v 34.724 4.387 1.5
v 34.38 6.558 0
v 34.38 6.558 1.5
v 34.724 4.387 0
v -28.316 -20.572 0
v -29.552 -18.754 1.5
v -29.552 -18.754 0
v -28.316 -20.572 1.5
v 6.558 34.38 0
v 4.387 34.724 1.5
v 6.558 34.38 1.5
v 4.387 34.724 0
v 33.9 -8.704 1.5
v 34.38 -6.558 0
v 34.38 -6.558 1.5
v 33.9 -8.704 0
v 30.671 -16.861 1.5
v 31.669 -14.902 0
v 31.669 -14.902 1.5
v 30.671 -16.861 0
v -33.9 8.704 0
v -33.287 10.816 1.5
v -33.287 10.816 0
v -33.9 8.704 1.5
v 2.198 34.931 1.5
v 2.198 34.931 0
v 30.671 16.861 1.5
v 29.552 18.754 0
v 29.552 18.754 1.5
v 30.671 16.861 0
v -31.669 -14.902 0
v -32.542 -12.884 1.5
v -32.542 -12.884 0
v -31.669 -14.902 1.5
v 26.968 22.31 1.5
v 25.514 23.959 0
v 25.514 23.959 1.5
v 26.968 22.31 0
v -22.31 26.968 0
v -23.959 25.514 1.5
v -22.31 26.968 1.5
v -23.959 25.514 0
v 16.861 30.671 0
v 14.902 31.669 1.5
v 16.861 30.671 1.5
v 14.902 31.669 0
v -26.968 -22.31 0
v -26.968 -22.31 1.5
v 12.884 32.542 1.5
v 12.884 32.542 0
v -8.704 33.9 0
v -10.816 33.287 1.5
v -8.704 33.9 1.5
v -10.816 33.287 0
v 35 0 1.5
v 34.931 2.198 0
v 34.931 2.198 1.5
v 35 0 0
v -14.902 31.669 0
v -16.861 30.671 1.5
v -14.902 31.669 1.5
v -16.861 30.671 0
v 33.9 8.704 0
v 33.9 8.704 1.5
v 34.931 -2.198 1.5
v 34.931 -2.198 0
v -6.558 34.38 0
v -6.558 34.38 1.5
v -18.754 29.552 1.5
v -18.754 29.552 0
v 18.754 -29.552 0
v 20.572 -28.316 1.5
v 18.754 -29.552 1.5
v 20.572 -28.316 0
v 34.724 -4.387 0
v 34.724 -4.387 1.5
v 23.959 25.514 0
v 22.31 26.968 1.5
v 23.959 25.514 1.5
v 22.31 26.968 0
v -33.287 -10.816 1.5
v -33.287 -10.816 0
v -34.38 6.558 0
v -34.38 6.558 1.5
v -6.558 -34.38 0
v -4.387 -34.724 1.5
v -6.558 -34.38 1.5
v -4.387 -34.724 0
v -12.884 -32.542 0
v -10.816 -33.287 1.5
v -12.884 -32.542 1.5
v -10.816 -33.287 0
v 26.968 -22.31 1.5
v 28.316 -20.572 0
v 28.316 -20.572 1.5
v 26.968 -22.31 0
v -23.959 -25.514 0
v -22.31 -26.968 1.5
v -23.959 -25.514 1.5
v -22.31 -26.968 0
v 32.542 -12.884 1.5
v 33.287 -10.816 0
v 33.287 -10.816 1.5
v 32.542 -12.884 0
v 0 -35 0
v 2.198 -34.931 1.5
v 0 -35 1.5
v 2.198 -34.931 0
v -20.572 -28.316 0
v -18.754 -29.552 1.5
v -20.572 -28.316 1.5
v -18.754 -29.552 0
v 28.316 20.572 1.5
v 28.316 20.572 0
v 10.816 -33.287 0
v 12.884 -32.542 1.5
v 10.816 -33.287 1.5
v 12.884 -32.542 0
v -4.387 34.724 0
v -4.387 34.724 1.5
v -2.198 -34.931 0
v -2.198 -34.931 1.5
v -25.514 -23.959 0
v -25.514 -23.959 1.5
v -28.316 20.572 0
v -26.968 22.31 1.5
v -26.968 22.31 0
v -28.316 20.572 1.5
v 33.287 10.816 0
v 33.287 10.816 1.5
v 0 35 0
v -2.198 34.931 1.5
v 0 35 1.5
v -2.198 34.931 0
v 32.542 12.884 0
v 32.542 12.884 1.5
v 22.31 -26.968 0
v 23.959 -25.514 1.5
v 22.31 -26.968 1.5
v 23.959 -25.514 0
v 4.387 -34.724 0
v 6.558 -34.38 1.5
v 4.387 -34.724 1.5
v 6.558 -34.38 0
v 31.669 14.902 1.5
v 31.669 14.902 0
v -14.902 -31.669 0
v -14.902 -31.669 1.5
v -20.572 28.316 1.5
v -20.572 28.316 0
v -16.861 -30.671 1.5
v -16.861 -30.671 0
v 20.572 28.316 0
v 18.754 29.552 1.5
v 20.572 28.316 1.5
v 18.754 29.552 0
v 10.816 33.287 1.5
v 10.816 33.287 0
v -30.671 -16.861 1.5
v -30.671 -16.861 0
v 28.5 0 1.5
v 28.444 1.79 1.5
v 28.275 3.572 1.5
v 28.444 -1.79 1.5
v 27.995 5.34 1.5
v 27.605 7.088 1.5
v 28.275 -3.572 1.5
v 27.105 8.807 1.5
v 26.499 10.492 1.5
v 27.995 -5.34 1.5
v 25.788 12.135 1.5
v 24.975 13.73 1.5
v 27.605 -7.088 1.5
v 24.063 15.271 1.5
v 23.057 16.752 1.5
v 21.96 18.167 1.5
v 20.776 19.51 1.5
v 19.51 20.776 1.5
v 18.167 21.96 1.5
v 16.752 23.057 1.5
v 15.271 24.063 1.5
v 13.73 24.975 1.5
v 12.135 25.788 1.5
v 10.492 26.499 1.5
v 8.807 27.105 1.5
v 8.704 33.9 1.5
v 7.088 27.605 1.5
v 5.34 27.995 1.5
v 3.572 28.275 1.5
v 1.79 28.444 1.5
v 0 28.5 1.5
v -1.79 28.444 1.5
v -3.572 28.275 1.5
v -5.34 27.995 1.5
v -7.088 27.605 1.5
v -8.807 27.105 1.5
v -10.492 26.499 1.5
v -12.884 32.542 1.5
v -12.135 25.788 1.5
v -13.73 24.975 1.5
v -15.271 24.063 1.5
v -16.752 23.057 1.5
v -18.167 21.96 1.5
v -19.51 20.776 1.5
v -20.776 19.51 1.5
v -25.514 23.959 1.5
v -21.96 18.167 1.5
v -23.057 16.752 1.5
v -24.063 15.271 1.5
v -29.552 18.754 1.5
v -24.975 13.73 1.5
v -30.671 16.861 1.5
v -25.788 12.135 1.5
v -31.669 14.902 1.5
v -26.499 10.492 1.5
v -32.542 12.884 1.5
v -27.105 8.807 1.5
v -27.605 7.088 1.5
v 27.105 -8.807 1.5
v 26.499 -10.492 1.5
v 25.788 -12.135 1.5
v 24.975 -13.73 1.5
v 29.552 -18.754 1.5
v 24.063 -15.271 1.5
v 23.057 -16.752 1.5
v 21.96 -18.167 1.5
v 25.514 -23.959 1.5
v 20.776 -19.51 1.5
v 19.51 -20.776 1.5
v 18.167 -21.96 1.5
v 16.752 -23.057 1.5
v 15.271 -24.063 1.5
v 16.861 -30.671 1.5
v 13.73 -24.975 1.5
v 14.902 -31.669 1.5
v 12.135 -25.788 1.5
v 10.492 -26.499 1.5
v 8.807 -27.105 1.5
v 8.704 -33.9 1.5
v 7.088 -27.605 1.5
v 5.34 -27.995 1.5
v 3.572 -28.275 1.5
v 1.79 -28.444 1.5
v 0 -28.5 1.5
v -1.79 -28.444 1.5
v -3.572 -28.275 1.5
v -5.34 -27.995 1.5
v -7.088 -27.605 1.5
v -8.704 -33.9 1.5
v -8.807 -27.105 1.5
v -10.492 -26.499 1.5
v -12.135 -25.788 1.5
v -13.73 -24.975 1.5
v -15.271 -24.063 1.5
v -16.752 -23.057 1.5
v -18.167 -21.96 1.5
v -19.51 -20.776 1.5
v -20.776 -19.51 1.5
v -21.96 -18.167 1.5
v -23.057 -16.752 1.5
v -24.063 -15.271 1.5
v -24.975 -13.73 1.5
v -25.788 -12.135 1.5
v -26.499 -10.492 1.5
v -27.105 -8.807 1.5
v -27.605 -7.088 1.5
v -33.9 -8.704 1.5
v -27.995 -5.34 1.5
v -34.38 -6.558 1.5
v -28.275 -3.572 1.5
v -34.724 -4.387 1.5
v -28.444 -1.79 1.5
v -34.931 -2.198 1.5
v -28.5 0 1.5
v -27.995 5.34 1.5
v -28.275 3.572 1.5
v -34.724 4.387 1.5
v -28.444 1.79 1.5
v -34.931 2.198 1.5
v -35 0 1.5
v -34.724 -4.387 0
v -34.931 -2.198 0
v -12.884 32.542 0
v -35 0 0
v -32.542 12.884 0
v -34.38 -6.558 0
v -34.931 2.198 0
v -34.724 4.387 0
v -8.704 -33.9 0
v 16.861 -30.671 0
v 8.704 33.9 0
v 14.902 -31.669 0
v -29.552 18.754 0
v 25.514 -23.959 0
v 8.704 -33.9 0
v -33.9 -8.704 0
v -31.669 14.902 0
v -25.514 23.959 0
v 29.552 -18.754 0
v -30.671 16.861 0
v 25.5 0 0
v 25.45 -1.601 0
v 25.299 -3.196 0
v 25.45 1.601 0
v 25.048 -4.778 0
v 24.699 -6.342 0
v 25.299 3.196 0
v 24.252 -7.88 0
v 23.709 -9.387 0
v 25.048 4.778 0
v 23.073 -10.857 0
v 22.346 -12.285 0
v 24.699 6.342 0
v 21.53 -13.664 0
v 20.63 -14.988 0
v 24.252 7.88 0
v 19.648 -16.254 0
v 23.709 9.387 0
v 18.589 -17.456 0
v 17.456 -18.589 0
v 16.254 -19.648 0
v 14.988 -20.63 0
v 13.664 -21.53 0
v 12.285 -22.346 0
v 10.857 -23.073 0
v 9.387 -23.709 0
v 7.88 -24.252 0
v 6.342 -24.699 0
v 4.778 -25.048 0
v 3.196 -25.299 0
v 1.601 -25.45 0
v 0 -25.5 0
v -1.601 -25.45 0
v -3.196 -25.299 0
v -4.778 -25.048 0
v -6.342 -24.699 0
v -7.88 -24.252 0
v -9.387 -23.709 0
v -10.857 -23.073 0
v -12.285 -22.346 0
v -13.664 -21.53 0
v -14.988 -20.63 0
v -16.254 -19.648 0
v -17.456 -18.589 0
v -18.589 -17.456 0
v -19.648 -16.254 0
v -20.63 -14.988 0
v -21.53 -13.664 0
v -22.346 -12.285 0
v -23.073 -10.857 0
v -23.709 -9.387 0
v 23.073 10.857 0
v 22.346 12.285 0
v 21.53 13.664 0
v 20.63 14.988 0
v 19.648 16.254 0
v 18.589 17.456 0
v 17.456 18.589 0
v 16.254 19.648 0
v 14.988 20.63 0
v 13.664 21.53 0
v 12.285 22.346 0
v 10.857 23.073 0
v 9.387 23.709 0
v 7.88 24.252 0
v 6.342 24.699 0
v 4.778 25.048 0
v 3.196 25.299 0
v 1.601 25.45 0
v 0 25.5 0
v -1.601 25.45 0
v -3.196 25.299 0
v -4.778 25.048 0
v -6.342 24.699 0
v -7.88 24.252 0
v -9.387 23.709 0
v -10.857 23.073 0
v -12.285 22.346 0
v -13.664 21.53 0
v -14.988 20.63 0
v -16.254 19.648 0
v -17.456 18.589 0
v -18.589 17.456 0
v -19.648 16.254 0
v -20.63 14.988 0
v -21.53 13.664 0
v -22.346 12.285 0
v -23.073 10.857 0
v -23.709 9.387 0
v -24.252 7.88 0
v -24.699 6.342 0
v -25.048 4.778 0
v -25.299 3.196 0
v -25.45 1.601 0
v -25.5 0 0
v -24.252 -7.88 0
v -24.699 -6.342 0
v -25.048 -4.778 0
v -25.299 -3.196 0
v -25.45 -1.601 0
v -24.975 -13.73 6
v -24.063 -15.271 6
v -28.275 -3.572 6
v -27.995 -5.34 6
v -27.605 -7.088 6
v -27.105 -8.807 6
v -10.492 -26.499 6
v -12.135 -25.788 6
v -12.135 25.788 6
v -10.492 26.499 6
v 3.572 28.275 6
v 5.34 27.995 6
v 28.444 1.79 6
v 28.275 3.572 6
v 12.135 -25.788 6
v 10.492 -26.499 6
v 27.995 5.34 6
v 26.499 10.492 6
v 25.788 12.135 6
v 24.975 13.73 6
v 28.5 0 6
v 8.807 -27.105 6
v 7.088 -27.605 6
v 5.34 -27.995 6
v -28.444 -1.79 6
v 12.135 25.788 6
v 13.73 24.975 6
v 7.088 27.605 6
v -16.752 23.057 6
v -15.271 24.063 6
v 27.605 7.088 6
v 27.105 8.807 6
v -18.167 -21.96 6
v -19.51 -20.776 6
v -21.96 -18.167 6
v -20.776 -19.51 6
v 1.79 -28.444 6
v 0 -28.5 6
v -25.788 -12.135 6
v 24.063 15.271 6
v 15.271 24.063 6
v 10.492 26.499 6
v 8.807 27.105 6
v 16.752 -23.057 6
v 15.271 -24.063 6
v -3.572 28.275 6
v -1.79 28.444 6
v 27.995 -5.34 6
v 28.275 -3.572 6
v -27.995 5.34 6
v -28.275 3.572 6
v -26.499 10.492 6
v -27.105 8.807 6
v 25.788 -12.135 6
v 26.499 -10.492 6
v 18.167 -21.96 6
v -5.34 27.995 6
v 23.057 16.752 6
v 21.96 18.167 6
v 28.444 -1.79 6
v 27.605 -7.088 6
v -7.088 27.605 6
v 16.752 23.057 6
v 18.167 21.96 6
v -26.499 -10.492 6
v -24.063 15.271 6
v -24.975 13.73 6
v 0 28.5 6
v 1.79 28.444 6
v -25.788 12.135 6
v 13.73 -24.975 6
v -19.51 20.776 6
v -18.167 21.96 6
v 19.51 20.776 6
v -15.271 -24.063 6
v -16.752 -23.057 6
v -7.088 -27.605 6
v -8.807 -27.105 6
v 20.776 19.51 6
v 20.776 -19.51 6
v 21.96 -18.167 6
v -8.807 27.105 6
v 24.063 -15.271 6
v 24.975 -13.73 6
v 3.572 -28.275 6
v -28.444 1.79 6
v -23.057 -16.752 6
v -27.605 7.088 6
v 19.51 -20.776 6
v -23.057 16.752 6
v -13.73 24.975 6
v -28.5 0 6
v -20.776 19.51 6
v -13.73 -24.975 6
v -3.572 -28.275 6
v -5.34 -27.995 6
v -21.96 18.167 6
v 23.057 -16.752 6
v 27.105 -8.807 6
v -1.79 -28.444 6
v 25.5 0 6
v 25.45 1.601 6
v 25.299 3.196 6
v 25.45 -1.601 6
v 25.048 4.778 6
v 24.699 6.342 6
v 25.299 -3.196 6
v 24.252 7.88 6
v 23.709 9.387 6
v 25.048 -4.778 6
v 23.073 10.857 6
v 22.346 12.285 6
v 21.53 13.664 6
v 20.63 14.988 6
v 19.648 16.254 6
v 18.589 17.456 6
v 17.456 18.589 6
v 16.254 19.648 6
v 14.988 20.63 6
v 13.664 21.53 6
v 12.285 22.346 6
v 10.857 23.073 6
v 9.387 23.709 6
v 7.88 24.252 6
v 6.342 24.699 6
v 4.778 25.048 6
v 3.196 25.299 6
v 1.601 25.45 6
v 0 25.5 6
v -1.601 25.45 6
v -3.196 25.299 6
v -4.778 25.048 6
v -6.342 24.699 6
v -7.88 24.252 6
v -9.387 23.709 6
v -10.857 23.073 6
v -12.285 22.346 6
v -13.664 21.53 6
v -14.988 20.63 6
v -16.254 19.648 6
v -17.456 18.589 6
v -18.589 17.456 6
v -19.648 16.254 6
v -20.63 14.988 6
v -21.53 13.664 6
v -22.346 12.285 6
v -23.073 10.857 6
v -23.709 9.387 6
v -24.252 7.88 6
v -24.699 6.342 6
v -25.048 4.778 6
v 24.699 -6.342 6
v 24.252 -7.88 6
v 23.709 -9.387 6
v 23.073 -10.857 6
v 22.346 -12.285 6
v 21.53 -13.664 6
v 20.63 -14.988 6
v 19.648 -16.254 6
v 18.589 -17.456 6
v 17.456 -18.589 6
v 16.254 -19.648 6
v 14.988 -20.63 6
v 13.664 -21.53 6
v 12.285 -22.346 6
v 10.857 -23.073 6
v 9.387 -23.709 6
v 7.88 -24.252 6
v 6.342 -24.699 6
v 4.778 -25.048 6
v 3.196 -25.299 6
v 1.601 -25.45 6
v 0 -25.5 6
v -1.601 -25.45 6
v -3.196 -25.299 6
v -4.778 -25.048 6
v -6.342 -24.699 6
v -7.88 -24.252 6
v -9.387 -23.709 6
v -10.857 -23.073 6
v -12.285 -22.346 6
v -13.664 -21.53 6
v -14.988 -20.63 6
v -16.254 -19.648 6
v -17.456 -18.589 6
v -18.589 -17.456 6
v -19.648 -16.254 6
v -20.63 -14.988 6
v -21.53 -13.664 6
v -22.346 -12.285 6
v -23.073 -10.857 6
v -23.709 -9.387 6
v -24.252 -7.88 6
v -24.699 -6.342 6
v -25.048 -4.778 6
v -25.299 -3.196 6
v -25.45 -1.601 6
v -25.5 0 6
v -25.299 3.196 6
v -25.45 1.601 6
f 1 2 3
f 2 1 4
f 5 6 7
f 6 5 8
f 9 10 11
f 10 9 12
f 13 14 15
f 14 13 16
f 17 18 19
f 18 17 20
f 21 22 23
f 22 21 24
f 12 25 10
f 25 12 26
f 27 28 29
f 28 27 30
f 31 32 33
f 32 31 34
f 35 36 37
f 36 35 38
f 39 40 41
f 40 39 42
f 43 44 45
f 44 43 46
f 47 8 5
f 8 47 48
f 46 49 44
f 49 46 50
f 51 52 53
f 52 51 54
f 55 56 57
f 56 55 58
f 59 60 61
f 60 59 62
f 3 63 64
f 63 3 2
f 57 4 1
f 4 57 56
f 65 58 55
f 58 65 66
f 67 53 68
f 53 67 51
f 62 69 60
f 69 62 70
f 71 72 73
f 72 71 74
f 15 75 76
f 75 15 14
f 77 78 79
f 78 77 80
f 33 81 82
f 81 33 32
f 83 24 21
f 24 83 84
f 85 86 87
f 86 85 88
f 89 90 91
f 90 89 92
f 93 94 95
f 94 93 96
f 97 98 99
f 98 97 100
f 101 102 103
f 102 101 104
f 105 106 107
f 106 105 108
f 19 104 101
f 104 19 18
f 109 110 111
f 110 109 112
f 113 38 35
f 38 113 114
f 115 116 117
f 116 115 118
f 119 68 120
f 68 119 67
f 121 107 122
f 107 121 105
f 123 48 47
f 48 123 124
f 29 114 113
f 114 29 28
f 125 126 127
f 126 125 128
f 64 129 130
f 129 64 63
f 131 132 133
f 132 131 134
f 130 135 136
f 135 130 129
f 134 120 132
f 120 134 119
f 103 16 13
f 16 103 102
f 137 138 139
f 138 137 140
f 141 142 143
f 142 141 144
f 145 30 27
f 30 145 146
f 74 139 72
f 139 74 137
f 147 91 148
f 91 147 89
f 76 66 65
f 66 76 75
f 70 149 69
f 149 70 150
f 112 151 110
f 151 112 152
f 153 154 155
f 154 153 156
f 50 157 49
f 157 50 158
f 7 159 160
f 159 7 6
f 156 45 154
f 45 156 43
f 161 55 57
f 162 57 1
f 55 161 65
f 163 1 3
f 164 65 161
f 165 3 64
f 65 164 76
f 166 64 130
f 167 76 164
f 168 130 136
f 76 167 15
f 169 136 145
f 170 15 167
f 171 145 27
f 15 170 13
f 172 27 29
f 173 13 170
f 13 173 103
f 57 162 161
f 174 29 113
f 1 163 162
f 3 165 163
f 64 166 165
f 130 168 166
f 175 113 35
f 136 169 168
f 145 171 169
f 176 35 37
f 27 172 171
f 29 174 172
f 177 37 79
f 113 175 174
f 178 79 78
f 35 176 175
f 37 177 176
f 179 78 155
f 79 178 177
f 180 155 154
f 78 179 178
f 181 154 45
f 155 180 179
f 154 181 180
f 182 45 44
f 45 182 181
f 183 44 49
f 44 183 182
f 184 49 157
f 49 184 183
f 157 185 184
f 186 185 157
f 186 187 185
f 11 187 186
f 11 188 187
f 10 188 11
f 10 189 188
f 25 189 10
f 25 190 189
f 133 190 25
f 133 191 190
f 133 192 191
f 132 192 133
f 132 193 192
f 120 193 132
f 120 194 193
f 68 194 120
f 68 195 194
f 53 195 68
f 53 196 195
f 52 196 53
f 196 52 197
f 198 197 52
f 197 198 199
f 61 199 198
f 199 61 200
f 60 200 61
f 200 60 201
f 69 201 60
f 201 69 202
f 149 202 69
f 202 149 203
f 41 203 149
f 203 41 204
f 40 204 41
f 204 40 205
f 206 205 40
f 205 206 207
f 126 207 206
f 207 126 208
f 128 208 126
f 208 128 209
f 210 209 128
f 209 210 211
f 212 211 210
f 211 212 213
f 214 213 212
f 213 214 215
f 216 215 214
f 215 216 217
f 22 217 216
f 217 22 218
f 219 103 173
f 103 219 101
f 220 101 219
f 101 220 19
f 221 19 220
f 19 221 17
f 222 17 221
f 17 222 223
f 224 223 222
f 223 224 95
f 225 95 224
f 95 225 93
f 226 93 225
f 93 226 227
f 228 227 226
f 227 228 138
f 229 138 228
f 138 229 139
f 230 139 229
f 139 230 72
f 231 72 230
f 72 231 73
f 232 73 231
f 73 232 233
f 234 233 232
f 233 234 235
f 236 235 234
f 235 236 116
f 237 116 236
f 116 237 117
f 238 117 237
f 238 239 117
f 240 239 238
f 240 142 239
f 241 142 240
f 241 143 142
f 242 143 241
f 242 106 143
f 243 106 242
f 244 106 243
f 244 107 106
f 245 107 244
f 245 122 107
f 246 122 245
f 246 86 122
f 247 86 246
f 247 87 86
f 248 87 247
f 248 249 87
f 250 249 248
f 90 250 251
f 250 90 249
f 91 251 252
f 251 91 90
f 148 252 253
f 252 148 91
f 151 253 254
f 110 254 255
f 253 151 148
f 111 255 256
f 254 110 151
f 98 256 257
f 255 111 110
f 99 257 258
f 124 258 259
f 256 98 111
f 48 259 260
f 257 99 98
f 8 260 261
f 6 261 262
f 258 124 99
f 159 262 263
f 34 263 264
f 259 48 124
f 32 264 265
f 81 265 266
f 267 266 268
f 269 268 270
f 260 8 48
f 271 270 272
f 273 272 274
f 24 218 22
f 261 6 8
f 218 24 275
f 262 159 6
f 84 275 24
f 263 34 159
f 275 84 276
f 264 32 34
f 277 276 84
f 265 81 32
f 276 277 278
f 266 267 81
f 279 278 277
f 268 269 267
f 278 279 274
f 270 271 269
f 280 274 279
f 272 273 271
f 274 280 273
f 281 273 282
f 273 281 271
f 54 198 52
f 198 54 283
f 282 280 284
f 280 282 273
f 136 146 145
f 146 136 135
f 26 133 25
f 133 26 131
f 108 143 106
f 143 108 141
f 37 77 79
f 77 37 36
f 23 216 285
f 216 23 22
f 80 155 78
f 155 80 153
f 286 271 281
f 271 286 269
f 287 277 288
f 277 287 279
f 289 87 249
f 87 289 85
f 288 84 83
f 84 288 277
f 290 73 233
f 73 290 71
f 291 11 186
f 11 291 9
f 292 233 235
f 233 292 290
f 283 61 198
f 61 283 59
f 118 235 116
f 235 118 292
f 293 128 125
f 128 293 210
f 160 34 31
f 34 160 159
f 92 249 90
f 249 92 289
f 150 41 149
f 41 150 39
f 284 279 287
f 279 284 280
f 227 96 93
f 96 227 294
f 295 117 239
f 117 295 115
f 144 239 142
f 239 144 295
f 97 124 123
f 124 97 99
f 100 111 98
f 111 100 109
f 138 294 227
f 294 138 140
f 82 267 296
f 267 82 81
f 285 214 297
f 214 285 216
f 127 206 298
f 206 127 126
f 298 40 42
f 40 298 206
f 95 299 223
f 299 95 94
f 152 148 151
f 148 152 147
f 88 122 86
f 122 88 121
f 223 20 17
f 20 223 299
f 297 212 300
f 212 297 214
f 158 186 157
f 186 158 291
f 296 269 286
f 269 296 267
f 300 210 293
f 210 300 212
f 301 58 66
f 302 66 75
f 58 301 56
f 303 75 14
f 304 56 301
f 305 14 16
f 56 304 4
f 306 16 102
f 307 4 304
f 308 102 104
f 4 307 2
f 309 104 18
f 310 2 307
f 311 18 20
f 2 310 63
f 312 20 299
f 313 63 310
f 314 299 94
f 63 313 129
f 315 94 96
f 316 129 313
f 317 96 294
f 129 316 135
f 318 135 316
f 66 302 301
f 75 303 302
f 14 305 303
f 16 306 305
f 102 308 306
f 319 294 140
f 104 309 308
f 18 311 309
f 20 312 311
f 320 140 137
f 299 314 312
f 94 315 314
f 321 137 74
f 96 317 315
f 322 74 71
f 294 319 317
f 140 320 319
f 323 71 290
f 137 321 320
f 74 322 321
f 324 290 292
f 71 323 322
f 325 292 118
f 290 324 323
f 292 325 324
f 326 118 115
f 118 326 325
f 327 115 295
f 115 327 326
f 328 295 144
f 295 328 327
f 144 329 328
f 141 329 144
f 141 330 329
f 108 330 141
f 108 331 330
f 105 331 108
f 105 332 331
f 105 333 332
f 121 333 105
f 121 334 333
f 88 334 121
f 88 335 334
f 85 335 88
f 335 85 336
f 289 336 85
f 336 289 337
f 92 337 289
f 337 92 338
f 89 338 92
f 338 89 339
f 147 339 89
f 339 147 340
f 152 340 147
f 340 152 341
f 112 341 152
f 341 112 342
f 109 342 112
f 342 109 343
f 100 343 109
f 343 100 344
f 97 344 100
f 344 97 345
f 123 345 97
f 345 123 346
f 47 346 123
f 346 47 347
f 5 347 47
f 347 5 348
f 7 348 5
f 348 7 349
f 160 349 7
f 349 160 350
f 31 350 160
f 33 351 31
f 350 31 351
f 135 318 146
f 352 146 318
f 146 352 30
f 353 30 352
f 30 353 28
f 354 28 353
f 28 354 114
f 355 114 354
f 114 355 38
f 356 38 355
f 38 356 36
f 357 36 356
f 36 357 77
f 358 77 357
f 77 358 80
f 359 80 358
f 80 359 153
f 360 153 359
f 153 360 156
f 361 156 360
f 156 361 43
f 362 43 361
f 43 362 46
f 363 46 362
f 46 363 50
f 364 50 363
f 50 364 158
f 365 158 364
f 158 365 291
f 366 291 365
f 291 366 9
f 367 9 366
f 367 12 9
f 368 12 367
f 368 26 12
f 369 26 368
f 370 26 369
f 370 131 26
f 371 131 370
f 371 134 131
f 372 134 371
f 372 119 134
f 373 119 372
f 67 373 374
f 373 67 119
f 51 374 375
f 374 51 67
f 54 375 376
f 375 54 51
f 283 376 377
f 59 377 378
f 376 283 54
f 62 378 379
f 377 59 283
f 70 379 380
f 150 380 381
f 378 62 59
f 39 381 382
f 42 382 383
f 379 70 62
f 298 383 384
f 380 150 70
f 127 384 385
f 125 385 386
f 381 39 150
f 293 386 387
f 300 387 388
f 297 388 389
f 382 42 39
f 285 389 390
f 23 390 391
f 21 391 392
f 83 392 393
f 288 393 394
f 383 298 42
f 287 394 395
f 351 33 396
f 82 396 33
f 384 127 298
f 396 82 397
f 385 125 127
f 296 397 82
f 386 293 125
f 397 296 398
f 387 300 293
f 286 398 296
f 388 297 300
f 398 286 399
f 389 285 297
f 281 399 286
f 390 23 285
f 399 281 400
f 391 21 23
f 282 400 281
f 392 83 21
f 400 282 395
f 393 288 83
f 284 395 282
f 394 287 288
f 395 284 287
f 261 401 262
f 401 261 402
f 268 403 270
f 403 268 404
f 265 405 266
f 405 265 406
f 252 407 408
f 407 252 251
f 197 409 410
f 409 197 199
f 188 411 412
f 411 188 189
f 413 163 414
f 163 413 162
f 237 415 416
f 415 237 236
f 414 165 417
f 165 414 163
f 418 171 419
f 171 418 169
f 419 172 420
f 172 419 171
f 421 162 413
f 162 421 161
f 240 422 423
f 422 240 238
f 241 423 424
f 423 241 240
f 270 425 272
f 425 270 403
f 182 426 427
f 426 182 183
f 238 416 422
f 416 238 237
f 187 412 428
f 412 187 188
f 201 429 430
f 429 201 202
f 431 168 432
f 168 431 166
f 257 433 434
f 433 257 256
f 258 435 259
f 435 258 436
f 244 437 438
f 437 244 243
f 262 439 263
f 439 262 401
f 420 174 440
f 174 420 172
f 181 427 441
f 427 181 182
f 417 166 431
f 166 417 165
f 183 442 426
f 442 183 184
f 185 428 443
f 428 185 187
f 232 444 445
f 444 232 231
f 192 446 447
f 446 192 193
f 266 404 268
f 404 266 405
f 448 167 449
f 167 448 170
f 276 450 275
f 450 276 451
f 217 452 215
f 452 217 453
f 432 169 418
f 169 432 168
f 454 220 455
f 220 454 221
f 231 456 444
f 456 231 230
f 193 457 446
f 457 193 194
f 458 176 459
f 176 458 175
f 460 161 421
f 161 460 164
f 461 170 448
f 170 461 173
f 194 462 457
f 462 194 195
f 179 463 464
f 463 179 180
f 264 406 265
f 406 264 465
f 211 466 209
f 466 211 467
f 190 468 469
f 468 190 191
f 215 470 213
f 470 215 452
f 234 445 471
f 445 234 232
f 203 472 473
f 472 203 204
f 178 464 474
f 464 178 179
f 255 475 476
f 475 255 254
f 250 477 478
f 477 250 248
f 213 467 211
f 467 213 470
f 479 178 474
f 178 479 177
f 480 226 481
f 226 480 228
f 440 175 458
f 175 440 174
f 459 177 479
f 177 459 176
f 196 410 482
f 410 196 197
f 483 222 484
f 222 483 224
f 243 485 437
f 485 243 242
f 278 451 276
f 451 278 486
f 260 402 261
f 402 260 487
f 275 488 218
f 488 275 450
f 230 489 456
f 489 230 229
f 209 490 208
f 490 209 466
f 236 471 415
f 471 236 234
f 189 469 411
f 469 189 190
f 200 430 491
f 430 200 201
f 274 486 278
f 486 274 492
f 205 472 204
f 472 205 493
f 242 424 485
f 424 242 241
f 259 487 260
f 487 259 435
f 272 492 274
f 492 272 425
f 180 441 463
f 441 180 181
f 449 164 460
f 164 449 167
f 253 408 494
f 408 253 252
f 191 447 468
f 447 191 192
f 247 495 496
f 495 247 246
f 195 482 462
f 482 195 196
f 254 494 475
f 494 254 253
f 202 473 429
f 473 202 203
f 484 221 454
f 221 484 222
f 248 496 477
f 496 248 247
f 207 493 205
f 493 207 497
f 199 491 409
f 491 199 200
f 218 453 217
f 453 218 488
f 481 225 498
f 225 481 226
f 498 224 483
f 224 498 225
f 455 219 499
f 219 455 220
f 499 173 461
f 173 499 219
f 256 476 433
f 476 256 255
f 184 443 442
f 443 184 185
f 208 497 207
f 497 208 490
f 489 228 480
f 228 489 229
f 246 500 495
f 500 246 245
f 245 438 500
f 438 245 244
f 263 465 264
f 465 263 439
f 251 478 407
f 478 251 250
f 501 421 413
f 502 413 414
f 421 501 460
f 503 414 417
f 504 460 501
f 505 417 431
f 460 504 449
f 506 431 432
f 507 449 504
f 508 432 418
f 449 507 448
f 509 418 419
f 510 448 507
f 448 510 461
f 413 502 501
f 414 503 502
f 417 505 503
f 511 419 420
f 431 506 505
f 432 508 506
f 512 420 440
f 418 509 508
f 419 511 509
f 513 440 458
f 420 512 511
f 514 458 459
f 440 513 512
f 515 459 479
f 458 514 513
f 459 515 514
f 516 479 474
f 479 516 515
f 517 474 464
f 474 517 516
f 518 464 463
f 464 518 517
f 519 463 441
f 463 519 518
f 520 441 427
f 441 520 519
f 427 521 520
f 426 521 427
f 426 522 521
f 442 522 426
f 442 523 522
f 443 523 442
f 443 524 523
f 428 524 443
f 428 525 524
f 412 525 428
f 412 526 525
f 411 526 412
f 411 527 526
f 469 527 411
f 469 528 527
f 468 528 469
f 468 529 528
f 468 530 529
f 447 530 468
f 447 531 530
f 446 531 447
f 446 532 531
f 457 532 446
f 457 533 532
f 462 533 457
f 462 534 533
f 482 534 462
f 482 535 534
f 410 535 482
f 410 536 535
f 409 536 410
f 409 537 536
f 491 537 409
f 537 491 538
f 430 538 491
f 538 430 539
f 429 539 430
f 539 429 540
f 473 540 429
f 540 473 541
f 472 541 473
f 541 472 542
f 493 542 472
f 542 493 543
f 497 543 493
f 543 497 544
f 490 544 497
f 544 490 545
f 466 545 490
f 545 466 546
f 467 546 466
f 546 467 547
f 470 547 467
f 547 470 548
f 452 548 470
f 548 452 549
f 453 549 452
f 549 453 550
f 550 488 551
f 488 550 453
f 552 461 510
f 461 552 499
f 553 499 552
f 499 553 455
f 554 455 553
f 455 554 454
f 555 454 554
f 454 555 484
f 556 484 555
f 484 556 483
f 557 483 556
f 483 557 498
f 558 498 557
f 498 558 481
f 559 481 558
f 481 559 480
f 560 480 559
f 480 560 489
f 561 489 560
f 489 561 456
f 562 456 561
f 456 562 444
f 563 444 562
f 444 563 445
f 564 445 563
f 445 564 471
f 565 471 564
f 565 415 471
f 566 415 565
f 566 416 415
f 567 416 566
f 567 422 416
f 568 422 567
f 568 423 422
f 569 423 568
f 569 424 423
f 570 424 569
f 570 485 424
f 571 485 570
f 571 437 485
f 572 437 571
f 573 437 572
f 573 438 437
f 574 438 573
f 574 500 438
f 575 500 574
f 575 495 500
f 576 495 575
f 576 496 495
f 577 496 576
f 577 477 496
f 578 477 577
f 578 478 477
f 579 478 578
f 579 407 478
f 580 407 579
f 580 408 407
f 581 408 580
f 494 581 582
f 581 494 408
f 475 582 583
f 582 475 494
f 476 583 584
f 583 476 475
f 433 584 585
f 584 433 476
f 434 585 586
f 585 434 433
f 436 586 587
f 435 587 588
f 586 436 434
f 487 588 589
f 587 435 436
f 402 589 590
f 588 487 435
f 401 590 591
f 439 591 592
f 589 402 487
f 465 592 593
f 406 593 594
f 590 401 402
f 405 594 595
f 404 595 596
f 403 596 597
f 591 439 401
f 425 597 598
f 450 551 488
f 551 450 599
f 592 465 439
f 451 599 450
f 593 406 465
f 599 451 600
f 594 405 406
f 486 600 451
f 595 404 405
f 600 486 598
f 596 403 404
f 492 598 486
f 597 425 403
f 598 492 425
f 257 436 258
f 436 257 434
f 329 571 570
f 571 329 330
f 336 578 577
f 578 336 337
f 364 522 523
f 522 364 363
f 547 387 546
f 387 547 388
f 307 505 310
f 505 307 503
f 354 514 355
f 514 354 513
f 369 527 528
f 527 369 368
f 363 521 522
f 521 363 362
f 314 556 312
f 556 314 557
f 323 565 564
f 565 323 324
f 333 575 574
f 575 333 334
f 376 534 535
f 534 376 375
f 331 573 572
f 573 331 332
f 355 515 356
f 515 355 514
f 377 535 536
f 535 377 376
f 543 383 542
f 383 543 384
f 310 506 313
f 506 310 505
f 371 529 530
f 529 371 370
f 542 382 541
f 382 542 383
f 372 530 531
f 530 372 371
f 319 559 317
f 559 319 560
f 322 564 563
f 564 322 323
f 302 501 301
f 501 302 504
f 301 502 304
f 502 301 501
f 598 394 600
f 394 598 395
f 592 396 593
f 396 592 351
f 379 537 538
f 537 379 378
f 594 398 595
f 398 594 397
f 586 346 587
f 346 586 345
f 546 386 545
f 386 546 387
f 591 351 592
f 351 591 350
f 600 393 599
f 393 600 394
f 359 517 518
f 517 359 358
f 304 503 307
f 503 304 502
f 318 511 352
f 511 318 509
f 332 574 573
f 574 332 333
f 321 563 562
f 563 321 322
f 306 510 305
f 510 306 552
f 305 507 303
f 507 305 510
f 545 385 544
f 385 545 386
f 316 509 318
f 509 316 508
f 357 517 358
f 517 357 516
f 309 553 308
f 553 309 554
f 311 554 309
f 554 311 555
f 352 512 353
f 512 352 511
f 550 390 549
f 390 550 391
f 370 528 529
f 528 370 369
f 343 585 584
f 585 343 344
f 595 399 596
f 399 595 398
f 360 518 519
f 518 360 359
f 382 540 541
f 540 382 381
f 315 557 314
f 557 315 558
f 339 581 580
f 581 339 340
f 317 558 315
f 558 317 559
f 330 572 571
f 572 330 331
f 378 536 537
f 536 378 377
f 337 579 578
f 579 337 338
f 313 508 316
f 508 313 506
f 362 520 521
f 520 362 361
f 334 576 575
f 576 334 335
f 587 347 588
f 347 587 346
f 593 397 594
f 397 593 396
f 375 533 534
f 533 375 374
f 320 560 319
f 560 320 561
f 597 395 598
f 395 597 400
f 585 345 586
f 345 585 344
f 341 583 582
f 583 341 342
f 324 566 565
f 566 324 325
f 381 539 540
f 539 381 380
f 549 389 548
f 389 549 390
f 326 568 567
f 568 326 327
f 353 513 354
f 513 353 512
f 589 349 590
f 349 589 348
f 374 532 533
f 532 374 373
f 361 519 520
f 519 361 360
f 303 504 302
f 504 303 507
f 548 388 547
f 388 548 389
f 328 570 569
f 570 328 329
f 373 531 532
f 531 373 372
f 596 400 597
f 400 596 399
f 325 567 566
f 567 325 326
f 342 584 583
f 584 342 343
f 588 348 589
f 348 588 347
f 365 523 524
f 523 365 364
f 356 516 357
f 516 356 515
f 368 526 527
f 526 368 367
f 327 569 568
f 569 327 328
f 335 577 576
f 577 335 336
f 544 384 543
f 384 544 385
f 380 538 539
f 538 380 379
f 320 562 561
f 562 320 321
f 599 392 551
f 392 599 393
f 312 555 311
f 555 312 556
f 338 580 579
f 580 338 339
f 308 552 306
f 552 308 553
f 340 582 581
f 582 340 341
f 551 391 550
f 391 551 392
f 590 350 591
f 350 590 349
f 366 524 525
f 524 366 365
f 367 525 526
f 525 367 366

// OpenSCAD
$fn=100;

/* hole = 4;

module fillet(r) {
   offset(r = -r) {
     offset(delta = r) {
       children();
     }
   }
}

fillet(1)
  cube(size=5); */

  /* linear_extrude(height = 60, twist = 0, slices = 60) { */
   /* difference() { */
   /* size = 10;
     #offset(r = size) {
       offset(delta=-size) {
         difference() {
           square(50, center = true);
           square(40, center = true);
           circle();
         }
       }
     } */
     /* offset(r = 8) {
     } */
   /* } */
 /* } */
 difference() {

 union() {

 cylinder(d=70,h=1.5);

 cylinder(d=57,h=6);

 }

 translate([0,0,-1]) cylinder(d=51,h=8);

 }



/* intersection() {
  translate([2.5, 2.5, 2.5])
  sphere(d=7);

  difference() {
    linear_extrude(5)
    difference() {
      square([5, 5]);
      translate([2.5, 2.5])
      circle(d=hole);
    };

    translate([0, 5])
    rotate([90])
    translate([2.5, 2.5])
    cylinder(d=hole, h=5);

    translate([0, 0, 5])
    rotate([0, 90])
    translate([2.5, 2.5])
    cylinder(d=hole, h=5);
  }
} */
